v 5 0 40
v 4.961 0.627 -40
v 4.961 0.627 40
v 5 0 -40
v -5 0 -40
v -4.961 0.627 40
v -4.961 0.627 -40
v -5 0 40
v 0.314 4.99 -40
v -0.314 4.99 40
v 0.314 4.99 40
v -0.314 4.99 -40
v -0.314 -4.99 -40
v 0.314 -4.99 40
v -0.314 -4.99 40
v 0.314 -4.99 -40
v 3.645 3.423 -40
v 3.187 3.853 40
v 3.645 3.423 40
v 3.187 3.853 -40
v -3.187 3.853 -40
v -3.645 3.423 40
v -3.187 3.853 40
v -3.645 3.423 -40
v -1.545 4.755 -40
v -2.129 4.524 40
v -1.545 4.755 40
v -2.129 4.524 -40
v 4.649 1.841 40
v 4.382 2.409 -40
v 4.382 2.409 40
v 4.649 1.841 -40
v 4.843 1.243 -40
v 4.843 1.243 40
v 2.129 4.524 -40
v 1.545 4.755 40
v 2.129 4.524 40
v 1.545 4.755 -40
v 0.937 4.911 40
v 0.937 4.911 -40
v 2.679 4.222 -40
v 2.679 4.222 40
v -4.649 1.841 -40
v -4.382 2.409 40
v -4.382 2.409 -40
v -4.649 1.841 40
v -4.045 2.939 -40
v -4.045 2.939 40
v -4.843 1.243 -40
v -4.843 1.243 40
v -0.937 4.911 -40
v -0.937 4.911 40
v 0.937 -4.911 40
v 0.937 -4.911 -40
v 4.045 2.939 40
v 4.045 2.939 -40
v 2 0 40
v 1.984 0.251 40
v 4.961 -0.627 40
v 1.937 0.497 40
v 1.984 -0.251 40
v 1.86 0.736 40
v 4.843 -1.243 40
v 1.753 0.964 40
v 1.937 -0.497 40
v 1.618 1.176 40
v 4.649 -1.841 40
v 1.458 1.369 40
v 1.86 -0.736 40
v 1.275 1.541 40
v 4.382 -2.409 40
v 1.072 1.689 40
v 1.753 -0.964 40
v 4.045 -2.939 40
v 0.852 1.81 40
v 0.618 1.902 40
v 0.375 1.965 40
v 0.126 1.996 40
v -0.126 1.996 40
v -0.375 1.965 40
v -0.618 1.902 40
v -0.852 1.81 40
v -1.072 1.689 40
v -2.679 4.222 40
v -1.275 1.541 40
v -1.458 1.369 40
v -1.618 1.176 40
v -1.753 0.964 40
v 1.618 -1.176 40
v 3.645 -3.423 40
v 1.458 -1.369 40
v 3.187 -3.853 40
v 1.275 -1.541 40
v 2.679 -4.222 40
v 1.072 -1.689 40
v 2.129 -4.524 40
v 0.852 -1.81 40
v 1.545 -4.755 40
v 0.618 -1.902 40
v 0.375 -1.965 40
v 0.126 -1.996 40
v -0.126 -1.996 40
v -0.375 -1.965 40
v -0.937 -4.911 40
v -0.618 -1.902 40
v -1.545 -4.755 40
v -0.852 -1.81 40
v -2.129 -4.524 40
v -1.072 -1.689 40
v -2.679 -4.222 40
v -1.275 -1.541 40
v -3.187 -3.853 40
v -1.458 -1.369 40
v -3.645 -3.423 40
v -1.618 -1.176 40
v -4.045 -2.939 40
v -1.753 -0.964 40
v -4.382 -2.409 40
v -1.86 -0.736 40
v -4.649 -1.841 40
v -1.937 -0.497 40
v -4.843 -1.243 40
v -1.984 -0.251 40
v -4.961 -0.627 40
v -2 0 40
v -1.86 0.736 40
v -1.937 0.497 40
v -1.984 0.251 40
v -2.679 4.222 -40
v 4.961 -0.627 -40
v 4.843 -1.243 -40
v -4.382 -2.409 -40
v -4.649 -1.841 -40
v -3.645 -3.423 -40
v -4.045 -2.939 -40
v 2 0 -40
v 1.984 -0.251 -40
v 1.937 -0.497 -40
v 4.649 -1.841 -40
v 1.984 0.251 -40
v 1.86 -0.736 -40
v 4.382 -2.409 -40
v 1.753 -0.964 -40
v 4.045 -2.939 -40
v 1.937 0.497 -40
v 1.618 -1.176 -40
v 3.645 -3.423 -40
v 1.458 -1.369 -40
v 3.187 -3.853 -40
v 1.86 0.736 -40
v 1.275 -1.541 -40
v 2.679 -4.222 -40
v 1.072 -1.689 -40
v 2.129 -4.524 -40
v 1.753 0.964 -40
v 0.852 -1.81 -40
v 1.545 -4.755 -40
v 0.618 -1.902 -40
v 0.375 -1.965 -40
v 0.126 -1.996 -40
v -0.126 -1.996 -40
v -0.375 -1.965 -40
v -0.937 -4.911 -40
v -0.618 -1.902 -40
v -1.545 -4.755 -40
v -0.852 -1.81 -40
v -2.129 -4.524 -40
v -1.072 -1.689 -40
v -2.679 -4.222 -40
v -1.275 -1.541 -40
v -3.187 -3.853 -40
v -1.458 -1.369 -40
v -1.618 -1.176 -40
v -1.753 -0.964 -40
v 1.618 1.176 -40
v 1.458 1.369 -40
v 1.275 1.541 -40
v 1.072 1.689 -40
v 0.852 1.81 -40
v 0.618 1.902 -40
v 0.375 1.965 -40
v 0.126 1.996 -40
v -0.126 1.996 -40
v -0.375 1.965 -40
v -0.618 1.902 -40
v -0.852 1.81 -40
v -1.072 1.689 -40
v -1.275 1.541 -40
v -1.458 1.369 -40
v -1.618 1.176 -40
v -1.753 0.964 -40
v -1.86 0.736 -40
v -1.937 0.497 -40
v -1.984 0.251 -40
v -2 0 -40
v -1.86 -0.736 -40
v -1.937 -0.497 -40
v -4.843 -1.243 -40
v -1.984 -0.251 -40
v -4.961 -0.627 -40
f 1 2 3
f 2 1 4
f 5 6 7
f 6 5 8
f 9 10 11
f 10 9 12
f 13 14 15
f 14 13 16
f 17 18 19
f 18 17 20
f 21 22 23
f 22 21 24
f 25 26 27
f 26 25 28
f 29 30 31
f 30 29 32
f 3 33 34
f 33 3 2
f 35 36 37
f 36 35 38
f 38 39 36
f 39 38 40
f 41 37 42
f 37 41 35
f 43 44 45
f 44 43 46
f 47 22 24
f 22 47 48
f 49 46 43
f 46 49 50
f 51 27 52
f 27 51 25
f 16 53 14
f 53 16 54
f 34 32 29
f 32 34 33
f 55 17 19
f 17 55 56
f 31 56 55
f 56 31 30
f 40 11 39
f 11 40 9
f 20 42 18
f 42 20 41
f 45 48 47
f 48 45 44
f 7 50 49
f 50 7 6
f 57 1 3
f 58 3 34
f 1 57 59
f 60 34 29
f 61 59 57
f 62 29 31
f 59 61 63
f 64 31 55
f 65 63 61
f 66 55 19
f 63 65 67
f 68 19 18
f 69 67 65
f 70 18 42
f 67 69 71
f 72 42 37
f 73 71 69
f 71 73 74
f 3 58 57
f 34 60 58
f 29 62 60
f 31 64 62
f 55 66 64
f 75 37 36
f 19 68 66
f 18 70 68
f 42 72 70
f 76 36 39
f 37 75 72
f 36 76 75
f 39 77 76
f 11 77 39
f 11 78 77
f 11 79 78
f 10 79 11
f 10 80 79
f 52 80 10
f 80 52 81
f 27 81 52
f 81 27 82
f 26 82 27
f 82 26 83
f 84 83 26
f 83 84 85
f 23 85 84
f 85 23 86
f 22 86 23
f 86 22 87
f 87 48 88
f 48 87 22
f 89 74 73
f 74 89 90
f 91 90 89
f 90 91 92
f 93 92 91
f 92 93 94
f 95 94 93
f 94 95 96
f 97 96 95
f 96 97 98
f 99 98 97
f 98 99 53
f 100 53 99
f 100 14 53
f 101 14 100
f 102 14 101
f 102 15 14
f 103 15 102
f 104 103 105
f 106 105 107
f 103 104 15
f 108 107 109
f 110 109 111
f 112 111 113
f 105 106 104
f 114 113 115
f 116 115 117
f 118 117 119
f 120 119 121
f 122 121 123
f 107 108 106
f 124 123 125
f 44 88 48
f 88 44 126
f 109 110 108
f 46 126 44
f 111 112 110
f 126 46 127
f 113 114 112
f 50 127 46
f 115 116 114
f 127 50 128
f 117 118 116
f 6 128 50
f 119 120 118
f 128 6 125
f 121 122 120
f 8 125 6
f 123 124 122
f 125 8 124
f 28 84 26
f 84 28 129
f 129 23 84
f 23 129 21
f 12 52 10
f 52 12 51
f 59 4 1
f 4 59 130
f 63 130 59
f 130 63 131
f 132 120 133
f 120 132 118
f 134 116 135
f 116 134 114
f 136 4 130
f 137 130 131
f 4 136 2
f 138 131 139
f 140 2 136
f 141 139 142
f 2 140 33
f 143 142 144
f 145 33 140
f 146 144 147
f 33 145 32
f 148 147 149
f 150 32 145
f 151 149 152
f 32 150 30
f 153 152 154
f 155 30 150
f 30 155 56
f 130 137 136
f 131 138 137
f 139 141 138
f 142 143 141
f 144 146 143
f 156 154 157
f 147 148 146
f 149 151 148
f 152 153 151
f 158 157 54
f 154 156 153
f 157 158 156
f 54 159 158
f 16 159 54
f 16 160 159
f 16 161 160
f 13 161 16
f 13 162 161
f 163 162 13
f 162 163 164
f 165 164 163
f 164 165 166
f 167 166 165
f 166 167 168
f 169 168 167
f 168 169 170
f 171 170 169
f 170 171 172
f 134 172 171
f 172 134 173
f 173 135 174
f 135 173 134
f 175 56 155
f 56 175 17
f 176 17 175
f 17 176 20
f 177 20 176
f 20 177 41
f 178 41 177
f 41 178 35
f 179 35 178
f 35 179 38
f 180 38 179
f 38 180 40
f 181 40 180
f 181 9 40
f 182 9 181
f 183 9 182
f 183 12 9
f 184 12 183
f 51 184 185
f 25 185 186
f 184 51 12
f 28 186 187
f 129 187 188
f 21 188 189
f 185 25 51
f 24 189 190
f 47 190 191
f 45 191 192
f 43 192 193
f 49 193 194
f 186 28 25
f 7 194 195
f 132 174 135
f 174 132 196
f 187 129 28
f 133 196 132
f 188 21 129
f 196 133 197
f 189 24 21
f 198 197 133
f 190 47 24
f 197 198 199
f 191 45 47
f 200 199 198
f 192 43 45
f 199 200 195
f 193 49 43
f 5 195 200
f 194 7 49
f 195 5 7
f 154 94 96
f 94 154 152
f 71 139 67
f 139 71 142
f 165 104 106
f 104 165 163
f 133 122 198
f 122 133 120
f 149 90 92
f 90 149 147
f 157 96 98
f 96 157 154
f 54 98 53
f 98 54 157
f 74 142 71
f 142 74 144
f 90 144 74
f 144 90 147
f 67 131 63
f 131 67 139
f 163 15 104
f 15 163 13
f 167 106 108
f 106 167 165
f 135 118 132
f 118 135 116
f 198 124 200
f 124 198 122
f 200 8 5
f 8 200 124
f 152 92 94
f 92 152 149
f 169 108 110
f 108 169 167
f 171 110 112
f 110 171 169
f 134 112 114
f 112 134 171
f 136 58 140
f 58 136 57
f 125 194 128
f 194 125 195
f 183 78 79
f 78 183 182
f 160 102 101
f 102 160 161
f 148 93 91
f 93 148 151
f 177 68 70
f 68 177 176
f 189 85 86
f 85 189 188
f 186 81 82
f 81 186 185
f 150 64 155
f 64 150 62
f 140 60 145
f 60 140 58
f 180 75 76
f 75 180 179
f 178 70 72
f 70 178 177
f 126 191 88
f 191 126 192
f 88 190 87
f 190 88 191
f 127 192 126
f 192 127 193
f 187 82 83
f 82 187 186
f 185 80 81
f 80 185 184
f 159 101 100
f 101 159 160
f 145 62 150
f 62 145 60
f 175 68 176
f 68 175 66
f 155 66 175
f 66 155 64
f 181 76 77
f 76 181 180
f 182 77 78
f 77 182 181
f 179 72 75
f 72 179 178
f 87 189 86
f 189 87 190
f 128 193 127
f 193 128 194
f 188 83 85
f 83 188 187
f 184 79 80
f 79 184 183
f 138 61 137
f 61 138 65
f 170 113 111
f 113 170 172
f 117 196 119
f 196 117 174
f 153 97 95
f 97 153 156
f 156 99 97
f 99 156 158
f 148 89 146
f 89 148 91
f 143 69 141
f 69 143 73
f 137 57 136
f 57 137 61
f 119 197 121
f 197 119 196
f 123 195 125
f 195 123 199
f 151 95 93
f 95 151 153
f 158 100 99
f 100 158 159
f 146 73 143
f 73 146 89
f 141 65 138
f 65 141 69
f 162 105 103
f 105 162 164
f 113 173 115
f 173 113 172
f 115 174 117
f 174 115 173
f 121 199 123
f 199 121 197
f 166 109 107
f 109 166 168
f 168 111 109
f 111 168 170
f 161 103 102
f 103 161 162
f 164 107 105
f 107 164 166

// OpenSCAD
$fn = 50;


difference() {
	union() {
		translate(v = [0, 0, -40.0000000000]) {
			cylinder(h = 80, r = 5.0000000000);
		}
	}
	union() {
		translate(v = [0, 0, -100.0000000000]) {
			cylinder(h = 200, r = 2);
		}
	}
}
